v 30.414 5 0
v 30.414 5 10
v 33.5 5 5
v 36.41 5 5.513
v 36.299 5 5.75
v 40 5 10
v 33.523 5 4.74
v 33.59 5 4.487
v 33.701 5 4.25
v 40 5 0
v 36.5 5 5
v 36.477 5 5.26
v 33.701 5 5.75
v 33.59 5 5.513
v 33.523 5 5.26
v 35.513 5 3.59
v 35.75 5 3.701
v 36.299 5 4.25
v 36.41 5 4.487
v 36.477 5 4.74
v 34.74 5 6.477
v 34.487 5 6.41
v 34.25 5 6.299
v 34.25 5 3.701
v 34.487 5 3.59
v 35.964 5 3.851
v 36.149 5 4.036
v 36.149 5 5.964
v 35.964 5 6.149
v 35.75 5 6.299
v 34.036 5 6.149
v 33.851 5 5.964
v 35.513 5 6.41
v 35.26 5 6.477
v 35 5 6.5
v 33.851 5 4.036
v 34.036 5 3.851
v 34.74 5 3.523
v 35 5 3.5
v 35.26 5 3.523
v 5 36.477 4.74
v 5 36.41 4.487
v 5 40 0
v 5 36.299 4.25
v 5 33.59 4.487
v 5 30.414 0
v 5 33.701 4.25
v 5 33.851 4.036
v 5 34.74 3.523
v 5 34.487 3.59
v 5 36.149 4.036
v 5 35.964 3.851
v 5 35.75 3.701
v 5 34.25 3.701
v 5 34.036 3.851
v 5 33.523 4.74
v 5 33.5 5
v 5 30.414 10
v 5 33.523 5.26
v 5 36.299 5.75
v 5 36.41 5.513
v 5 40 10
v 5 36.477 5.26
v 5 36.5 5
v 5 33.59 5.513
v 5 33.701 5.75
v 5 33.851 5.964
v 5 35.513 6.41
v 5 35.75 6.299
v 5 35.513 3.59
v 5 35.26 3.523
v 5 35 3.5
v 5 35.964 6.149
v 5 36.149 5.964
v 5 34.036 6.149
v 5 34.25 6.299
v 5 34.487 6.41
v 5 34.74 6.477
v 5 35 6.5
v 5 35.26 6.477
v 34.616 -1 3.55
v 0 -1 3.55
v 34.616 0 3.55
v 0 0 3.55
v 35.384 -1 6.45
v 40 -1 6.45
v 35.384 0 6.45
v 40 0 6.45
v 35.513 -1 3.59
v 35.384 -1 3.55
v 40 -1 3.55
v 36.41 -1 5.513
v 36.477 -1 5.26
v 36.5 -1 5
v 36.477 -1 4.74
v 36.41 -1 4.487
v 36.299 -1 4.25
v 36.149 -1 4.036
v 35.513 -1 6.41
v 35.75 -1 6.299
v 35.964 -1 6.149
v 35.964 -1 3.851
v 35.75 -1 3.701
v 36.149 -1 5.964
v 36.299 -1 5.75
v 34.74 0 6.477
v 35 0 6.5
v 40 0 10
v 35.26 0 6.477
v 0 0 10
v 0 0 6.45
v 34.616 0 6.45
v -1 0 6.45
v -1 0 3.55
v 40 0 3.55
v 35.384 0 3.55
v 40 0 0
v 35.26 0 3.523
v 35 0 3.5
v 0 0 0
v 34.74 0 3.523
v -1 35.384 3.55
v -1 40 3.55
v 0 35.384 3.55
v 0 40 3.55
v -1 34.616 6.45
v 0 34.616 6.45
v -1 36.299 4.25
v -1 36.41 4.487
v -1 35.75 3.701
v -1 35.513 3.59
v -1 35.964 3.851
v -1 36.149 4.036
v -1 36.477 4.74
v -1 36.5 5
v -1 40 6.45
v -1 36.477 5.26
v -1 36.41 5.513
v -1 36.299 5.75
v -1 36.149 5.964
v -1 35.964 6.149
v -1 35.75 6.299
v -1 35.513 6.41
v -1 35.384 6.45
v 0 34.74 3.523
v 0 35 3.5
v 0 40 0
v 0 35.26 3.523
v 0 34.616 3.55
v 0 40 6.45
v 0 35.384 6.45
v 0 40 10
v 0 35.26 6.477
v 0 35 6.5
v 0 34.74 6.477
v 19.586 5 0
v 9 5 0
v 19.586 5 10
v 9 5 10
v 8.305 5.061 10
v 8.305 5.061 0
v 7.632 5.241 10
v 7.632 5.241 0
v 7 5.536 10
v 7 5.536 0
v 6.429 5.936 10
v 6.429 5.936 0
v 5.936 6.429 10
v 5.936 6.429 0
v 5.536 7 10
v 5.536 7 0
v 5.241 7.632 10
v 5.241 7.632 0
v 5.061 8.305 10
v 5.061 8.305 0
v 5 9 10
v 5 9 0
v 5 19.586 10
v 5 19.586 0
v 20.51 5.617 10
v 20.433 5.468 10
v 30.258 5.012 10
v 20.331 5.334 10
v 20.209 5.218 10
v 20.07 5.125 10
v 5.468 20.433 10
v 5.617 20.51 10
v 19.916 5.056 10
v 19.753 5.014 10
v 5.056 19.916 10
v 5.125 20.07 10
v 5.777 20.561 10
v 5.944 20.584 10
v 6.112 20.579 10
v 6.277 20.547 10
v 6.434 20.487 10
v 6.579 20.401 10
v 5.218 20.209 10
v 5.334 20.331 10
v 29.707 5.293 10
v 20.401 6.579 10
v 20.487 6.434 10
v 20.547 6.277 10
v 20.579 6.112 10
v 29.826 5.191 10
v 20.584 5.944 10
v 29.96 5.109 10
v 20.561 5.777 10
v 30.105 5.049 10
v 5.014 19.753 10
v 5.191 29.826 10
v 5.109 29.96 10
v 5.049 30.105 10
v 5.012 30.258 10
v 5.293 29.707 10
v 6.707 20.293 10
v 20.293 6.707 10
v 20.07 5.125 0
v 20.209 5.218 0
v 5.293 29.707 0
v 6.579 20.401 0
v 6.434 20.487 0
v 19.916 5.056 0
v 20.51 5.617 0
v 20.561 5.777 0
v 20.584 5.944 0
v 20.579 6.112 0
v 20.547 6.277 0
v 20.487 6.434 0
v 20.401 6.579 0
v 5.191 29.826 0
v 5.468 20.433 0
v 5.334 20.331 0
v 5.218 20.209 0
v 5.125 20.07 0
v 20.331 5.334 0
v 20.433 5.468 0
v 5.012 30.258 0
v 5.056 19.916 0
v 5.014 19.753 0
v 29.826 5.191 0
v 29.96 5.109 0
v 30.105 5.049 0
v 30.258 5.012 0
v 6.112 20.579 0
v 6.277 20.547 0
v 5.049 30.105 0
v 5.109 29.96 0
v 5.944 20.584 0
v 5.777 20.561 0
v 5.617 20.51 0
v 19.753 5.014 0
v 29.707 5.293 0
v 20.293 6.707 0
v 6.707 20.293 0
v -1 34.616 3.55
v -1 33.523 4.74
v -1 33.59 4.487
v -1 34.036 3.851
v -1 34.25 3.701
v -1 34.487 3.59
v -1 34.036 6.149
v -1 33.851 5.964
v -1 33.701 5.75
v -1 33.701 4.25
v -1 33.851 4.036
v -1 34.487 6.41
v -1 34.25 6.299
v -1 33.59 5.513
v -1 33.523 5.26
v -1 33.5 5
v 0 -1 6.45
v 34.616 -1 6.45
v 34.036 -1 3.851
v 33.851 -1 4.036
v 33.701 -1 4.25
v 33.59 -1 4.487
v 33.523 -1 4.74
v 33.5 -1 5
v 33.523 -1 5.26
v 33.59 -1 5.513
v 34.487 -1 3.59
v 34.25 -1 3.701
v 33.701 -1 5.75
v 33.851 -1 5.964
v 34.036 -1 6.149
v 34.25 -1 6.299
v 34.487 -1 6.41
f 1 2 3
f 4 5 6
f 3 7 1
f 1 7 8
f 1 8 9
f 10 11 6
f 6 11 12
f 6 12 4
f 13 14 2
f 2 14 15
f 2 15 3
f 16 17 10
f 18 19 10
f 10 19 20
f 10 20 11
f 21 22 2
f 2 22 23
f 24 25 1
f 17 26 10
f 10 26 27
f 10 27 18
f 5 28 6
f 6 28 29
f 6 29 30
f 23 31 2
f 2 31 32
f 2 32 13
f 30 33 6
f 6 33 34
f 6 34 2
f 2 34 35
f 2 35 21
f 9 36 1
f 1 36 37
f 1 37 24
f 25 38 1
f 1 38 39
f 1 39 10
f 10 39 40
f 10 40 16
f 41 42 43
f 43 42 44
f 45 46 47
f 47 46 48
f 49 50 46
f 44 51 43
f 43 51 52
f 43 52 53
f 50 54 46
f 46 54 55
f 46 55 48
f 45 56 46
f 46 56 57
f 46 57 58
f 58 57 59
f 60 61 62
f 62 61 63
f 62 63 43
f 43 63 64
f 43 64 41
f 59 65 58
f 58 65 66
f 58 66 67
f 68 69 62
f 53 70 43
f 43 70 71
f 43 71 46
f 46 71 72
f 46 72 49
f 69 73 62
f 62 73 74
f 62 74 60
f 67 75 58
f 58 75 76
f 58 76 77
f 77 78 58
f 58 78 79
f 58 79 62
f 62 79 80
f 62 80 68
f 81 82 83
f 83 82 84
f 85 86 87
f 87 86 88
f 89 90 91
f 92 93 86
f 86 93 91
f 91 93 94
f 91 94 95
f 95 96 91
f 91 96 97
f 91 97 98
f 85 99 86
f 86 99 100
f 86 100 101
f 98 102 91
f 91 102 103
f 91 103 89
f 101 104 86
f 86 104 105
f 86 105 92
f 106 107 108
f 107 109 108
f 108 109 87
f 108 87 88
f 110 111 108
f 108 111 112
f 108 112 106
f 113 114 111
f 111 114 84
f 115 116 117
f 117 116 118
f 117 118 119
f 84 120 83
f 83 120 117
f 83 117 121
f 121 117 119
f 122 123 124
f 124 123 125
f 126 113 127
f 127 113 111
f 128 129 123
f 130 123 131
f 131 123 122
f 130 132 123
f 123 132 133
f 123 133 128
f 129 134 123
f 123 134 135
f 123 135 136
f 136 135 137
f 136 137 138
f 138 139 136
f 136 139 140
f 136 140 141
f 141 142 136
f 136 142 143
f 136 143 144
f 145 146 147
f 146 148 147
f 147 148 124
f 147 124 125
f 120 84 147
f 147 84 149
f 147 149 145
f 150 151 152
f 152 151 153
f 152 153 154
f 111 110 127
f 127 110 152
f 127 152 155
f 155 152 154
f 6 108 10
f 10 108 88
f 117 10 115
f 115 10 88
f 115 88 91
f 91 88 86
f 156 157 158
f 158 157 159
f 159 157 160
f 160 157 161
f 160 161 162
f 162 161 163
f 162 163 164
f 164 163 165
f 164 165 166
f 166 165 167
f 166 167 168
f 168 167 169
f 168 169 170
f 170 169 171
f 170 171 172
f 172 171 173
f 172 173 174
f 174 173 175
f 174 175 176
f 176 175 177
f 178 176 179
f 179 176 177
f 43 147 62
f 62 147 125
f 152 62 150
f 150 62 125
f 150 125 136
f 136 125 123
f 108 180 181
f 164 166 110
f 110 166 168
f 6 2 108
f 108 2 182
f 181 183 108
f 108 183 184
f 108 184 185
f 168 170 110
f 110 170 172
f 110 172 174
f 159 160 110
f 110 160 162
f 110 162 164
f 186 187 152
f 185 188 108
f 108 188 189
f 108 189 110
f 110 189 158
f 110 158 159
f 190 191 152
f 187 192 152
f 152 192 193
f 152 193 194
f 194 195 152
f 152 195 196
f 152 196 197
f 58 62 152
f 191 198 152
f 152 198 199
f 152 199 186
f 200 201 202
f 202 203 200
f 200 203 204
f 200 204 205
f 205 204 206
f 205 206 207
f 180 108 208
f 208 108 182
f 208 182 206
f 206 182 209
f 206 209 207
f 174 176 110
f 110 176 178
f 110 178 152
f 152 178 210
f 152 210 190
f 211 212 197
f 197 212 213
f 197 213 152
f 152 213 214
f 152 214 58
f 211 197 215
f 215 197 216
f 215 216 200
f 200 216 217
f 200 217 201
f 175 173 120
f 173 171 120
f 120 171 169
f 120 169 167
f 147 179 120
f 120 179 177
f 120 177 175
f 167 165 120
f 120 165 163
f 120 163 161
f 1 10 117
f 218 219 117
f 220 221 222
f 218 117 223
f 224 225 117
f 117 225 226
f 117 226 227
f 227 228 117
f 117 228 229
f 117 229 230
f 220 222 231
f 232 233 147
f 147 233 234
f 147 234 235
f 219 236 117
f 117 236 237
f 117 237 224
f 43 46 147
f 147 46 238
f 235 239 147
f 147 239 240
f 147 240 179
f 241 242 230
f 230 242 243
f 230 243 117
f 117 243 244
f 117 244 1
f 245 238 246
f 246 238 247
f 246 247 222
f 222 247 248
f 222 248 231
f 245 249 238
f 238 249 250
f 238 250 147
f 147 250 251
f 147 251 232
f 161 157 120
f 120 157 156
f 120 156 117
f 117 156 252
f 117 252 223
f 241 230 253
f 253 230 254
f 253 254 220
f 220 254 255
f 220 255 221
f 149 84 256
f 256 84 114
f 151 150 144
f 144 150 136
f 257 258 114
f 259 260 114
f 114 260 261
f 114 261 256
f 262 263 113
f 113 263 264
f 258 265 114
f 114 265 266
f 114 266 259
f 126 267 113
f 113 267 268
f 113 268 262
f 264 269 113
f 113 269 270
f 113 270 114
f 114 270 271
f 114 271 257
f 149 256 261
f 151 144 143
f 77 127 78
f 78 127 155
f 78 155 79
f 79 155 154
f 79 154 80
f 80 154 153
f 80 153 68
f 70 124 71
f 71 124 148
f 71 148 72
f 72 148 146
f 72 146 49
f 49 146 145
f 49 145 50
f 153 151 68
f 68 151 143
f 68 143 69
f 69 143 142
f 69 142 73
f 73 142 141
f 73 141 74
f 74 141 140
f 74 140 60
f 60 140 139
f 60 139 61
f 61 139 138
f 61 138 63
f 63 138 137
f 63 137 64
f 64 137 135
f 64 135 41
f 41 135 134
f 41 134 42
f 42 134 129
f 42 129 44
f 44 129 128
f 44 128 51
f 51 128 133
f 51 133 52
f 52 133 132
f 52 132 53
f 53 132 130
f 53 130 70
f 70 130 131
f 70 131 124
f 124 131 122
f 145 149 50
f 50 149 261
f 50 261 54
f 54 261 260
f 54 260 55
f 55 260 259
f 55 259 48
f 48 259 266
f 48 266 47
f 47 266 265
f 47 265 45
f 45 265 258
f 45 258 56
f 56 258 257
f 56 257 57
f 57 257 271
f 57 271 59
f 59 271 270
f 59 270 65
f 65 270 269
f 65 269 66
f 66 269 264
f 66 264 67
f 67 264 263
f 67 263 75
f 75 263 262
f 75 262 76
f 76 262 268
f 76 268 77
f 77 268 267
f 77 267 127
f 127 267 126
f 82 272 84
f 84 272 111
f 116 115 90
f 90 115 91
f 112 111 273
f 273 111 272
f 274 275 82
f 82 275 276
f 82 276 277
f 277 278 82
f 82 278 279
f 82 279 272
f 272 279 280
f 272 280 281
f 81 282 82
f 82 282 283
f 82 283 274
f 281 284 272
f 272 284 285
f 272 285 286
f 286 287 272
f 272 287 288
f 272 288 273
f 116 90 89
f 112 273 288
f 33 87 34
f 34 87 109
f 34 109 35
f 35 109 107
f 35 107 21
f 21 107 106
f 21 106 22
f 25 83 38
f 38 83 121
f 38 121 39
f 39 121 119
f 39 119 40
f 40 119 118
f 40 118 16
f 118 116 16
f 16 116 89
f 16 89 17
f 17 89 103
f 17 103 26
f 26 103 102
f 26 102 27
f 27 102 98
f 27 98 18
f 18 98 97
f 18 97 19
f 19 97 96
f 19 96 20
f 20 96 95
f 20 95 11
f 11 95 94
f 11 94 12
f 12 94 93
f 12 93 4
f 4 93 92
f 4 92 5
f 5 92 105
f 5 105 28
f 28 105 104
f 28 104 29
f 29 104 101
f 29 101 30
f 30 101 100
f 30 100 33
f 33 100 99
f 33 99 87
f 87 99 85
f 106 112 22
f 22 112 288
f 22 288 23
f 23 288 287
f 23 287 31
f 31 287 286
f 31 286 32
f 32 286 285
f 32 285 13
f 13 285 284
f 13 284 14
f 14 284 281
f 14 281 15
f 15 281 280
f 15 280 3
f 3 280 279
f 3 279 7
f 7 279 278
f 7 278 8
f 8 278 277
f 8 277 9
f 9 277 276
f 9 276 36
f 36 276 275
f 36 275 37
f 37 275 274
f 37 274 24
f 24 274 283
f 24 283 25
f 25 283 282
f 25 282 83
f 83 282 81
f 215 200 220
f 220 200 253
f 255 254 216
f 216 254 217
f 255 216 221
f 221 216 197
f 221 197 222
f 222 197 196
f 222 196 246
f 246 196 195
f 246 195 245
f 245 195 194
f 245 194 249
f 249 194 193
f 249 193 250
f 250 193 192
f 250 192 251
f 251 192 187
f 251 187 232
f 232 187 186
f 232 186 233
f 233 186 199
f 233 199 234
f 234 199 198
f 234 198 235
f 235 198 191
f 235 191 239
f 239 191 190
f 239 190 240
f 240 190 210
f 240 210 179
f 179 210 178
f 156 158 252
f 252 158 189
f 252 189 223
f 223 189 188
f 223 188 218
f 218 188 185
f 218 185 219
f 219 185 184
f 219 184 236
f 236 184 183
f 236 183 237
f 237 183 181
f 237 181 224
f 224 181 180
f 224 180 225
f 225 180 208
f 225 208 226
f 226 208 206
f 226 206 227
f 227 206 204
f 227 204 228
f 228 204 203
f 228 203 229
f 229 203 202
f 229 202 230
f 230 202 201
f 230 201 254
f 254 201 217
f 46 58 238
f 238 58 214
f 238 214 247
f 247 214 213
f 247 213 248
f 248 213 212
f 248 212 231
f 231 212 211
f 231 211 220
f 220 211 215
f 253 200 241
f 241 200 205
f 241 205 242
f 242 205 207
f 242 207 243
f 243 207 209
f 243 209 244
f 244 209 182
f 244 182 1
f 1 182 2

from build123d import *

# Parameters (mm, degrees)
MAIN_DEPTH                         = 10
ESQUISSE4_W                        = 2.9
ESQUISSE4_H                        = 40
MAKERBEAMFIXVERTICAL_DEPTH         = 1
MAKERBEAMVERTICALHOLE_DEPTH        = 58.445626465
MAKERBEAMVERTICALHOLE_DEPTH_BACK   = 58.445626465
ESQUISSE2_R                        = 1.5
ESQUISSE5_W                        = 40
ESQUISSE5_H                        = 2.9
MAKERBEAMFIXHORIZONTAL_DEPTH       = 1
MAKERBEAMHORIZONTALHOLE_DEPTH      = 58.445626465
MAKERBEAMHORIZONTALHOLE_DEPTH_BACK = 58.445626465
ESQUISSE3_R                        = 1.5
BOSS_EXTRUDE1_DEPTH                = 10
FILLET1_R                          = 1


with BuildPart() as part:
    # Esquisse1 → Main (new body)
    with BuildSketch(Plane.XY):
        with BuildLine():
            Line((0, 0), (40, 0))
            Line((40, 0), (40, 5))
            Line((40, 5), (9, 5))
            ThreePointArc((9, 5), (6.171572875, 6.171572875), (5, 9))
            Line((5, 9), (5, 40))
            Line((5, 40), (0, 40))
            Line((0, 40), (0, 0))
        make_face()
    extrude(amount=MAIN_DEPTH)

    # Esquisse4 → MakerBeamFixVertical (add)
    with BuildSketch(Plane.ZY):
        with Locations((5, 20)):
            Rectangle(ESQUISSE4_W, ESQUISSE4_H)
    extrude(amount=MAKERBEAMFIXVERTICAL_DEPTH)

    # Esquisse2 → MakerBeamVerticalHole (cut, two sides: drawn at the far end of the back side and taken through both)
    with BuildSketch(Plane.ZY.offset(-MAKERBEAMVERTICALHOLE_DEPTH_BACK)):
        with Locations(Location((5, 35, 0), (0, 0, 270))):
            Circle(ESQUISSE2_R)
    extrude(amount=MAKERBEAMVERTICALHOLE_DEPTH + MAKERBEAMVERTICALHOLE_DEPTH_BACK, mode=Mode.SUBTRACT)

    # Esquisse5 → MakerBeamFixHorizontal (add)
    with BuildSketch(Plane(origin=(0, 0, 0), x_dir=(-1, 0, 0), z_dir=(0, -1, 0))):
        with Locations((-20, -5)):
            Rectangle(ESQUISSE5_W, ESQUISSE5_H)
    extrude(amount=MAKERBEAMFIXHORIZONTAL_DEPTH)

    # Esquisse3 → MakerBeamHorizontalHole (cut, two sides: drawn at the far end of the back side and taken through both)
    with BuildSketch(Plane.XZ.offset(-MAKERBEAMHORIZONTALHOLE_DEPTH_BACK)):
        with Locations(Location((35, 5, 0), (0, 0, 255.164888418))):
            Circle(ESQUISSE3_R)
    extrude(amount=MAKERBEAMHORIZONTALHOLE_DEPTH + MAKERBEAMHORIZONTALHOLE_DEPTH_BACK, mode=Mode.SUBTRACT)

    # Sketch2 → Boss-Extrude1 (add)
    with BuildSketch(Plane.XY.offset(10)):
        Polygon((5, 30), (30, 5), (22, 5), (5, 22), align=None)
    extrude(amount=-BOSS_EXTRUDE1_DEPTH)

    # Fillet1
    fillet1_edges = [part.edges().sort_by_distance(p)[0] for p in [
        (5, 22, 5),
        (5, 30, 5),
        (30, 5, 5),
        (22, 5, 5),
    ]]
    fillet(fillet1_edges, radius=FILLET1_R)


solid = part.part
